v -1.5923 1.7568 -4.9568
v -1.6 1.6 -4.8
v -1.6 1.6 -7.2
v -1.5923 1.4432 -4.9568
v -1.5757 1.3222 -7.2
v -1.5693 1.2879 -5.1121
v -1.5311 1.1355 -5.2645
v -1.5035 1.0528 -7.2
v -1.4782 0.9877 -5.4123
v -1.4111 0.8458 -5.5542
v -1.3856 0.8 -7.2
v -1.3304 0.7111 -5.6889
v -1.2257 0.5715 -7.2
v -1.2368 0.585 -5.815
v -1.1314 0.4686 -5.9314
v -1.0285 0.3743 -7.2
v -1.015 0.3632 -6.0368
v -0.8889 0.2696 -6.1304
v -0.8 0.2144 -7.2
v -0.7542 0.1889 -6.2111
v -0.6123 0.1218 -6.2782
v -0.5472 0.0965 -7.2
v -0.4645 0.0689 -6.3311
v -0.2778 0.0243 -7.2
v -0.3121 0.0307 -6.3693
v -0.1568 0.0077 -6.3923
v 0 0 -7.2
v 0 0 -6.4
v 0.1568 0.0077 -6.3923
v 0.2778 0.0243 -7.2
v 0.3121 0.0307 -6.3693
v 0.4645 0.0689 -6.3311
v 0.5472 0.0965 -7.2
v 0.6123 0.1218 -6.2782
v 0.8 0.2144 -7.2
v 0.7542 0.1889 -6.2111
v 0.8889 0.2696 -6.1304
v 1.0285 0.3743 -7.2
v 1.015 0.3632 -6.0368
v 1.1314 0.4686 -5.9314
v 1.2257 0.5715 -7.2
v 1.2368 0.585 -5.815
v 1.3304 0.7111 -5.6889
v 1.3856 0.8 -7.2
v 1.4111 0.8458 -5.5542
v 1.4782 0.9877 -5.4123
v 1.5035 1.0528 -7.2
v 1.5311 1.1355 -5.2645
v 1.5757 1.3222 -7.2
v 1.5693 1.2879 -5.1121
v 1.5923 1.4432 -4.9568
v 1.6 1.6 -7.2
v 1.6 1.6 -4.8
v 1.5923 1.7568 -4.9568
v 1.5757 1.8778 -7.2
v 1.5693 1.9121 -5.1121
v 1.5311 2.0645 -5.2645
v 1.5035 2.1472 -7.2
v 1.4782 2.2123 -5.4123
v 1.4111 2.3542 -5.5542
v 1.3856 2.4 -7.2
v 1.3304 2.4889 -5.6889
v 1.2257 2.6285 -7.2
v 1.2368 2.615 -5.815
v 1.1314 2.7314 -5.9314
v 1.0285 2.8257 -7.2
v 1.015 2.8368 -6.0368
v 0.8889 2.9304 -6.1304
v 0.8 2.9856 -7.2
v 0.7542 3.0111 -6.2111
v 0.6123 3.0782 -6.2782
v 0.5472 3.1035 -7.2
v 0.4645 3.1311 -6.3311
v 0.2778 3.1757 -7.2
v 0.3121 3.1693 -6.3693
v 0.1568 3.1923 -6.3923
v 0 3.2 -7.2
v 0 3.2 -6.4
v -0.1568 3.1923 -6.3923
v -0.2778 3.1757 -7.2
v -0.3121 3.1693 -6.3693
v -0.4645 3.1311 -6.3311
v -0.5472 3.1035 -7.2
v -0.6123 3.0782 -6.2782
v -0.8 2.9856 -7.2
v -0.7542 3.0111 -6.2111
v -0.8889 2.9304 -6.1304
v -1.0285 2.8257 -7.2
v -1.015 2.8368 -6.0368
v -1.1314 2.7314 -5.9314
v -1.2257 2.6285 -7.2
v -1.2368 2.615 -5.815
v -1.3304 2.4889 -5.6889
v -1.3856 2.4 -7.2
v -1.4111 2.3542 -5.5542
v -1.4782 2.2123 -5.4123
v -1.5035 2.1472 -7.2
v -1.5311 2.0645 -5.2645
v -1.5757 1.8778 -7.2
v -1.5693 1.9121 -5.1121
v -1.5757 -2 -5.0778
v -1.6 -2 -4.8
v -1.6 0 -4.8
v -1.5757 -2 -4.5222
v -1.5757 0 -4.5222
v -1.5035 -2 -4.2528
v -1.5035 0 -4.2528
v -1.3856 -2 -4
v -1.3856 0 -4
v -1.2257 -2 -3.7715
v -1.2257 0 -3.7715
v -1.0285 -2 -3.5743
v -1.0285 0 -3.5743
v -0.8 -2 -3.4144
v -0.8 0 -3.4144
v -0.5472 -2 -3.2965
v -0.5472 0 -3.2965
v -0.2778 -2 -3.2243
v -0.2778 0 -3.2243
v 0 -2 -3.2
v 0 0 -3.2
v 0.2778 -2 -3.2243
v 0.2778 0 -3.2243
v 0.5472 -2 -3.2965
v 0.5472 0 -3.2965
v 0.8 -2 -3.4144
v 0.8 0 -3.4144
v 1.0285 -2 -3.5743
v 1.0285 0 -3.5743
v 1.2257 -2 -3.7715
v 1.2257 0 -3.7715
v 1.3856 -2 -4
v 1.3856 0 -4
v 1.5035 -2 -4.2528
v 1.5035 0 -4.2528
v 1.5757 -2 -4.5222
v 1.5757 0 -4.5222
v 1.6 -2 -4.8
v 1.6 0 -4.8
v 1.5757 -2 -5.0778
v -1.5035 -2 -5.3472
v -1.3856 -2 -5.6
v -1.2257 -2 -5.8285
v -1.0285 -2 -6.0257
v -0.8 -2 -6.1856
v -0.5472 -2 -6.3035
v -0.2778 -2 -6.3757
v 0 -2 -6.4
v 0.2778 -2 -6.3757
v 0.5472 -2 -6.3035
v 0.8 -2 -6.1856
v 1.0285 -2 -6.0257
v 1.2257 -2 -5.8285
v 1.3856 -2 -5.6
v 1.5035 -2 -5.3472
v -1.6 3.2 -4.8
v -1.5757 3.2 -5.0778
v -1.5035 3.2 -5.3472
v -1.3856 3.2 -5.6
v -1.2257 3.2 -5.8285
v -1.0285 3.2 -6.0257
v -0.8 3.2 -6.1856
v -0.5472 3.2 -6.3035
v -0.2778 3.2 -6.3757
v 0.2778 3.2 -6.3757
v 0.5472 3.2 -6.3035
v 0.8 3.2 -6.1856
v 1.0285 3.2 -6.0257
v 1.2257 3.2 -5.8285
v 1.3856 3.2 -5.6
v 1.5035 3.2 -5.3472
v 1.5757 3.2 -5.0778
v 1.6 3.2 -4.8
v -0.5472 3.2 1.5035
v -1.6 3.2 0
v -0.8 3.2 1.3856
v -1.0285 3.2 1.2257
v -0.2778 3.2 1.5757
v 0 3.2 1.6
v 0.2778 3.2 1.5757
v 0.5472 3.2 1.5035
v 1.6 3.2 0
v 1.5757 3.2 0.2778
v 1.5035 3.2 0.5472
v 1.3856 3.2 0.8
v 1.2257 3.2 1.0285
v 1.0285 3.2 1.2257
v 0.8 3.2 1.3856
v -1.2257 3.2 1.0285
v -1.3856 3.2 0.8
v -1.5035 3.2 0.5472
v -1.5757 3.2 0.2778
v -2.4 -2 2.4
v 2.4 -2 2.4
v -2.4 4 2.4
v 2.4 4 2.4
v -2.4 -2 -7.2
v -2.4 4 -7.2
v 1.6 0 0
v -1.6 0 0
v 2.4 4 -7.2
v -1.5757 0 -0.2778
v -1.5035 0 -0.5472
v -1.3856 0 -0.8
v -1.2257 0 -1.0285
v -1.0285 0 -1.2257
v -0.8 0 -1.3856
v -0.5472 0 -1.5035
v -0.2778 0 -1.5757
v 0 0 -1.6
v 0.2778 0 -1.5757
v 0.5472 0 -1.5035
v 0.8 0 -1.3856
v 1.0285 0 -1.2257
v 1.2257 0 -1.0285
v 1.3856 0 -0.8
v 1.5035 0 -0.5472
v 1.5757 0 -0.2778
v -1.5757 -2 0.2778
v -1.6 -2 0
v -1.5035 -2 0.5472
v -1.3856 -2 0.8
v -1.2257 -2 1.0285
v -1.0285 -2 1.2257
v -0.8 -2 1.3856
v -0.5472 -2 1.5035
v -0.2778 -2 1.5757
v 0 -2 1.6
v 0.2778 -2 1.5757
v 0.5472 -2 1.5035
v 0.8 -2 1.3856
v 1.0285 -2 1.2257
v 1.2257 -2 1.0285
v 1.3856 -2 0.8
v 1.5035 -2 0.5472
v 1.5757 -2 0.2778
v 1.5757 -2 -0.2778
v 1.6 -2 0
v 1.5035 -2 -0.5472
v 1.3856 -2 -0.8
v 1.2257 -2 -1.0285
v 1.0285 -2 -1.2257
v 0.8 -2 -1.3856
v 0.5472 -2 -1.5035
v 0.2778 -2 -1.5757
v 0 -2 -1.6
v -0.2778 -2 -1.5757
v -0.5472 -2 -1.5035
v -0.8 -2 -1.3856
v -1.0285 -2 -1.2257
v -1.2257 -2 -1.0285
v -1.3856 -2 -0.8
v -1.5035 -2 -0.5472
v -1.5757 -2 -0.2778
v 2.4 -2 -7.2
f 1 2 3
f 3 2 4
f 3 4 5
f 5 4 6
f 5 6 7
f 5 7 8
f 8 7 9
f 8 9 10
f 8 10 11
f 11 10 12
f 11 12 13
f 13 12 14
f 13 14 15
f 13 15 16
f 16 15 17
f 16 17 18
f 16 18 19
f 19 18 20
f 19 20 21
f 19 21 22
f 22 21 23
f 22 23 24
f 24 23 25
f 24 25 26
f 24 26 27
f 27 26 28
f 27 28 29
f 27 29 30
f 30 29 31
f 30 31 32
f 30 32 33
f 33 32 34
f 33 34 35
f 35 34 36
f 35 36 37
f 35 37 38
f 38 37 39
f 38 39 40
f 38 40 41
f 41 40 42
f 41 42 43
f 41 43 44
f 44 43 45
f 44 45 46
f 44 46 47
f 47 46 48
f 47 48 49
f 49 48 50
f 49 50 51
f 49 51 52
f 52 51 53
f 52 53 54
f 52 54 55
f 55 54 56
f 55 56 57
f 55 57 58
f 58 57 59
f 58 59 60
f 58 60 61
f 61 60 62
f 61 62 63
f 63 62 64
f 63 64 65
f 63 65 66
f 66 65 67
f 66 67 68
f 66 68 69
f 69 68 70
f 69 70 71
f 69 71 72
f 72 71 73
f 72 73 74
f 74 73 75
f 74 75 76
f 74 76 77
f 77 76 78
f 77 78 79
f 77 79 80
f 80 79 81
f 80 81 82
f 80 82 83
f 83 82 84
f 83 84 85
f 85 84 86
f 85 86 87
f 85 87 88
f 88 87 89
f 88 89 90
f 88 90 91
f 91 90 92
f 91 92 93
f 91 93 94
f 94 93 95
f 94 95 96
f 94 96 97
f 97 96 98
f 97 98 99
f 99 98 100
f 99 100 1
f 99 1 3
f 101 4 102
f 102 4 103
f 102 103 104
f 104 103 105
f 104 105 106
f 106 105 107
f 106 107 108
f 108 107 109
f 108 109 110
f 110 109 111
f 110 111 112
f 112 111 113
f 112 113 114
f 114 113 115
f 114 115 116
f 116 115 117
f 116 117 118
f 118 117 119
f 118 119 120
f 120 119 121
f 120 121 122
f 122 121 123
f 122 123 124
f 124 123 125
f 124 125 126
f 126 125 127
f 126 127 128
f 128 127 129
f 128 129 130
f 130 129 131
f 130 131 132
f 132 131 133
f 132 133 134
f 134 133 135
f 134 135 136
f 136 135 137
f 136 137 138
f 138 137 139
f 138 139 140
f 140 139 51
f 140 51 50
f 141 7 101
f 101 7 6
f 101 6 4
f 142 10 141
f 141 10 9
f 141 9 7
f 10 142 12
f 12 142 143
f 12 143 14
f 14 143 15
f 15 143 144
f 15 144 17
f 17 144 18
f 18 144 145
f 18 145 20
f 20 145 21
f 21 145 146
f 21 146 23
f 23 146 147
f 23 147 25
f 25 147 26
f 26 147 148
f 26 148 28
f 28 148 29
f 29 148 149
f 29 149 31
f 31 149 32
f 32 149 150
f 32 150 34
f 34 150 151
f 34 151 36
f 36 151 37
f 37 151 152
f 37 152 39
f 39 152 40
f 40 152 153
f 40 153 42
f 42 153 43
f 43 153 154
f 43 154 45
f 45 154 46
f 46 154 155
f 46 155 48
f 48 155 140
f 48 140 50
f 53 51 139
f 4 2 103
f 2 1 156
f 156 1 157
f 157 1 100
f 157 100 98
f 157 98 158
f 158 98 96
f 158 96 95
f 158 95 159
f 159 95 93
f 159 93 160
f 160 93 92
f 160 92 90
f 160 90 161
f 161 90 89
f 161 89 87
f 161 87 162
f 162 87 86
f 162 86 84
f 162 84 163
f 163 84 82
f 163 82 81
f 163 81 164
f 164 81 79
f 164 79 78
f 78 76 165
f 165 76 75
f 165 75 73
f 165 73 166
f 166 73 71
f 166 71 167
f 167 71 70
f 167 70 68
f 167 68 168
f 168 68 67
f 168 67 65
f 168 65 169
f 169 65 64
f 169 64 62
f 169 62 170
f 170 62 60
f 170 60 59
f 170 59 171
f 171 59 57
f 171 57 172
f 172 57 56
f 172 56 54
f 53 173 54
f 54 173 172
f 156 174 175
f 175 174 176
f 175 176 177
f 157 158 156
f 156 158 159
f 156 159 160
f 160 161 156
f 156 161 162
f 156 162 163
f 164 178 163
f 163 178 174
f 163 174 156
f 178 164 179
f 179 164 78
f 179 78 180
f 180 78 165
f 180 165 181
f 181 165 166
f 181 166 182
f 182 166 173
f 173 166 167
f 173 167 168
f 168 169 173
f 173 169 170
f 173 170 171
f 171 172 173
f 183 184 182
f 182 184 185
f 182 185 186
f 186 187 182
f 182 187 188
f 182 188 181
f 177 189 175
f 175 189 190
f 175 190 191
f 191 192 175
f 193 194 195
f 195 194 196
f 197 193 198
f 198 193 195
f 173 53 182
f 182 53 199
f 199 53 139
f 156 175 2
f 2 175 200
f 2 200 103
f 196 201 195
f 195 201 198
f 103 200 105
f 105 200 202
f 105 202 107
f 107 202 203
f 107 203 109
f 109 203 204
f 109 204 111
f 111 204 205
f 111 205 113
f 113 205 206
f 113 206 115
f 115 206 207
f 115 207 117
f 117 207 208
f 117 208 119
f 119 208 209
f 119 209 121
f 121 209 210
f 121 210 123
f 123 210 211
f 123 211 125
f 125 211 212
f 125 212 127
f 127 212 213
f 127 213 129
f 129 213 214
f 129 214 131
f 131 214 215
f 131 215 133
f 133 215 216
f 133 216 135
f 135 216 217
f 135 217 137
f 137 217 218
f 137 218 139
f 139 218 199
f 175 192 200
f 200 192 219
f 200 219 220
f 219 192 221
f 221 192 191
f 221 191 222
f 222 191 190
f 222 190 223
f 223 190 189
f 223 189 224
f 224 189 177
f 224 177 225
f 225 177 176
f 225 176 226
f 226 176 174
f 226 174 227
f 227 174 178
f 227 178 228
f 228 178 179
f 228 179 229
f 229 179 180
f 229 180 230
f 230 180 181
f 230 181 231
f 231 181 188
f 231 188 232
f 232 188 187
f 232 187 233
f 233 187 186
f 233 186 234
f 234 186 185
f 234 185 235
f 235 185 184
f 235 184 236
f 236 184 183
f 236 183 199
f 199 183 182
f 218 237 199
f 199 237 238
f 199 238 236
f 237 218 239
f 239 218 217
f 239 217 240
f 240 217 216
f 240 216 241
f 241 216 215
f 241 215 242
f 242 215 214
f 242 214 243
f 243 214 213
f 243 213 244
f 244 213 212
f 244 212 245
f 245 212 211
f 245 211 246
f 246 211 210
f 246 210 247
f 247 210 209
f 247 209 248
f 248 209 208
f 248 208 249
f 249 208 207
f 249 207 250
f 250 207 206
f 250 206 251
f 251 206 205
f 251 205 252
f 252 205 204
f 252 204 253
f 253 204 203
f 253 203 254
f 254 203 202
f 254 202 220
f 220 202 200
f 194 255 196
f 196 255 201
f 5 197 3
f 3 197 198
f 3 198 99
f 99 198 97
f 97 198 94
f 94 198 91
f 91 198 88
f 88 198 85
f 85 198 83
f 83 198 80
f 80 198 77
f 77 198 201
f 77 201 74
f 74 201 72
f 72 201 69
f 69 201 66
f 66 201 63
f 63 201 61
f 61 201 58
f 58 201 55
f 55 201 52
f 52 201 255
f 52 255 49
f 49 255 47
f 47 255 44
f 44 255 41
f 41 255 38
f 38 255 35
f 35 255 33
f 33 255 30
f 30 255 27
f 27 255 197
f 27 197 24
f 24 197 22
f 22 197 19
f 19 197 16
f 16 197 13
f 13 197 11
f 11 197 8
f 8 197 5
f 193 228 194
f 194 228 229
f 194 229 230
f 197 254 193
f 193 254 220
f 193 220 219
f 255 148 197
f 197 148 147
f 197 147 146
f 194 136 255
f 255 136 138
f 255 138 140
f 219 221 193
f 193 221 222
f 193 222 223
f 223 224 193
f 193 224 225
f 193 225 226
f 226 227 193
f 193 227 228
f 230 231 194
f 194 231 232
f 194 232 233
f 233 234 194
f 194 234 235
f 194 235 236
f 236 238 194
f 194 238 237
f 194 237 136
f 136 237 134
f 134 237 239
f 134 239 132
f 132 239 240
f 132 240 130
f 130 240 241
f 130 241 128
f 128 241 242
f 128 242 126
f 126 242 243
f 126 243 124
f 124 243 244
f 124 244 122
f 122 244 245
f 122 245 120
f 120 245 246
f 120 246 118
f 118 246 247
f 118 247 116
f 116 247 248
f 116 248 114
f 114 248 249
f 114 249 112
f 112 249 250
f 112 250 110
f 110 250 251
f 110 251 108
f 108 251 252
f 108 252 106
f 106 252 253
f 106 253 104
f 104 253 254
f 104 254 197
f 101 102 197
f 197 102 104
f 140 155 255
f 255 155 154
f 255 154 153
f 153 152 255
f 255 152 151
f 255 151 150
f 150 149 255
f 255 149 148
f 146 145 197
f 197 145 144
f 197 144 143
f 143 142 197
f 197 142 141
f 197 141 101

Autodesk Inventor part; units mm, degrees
ref_plane "YZ Plane" through (0, 0, 0) normal (1, 0, 0) x (0, 1, 0)
ref_plane "XZ Plane" through (0, 0, 0) normal (0, 1, 0) x (-1, 0, 0)
ref_plane "XY Plane" through (0, 0, 0) normal (0, 0, 1) x (1, 0, 0)
sketch "스케치1" plane through (0, 0, 0) normal (0, 1, 0) x (-1, 0, 0)
  circle A0 centre (0, 0) radius 1.6
  circle A1 centre (0, 0) radius 2.4
  circle A2 centre (0, -4.8) radius 2.4
  circle A3 centre (0, -4.8) radius 1.6
  line L0 (1.6, 0) -> (1.6, -4.8)
  line L1 (-1.6, 0) -> (-1.6, -4.8)
  line L2 (-2.4, 2.4) -> (2.4, 2.4)
  line L3 (2.4, 2.4) -> (2.4, -7.2)
  line L4 (2.4, -7.2) -> (-2.4, -7.2)
  line L5 (-2.4, -7.2) -> (-2.4, 2.4)
  point P0 (0, -2.4)
  dimension "d1" = 4.8
  dimension "d2" = 4.8
  dimension "d0" = 3.2
  dimension "d3" = 3.2
extrude "돌출3" add sketch "스케치1" against normal blind 2 contours L0 A1 L1 A0 | A0 L1 A1 L0 | L0 A2 A1 | A1 L3 A2 L0 | L1 A2 L5 A1 | A1 A2 L1 | A2 L0 A3 L1 | A1 L2 L3 | A2 L1 A3 L0 | L5 L2 A1 | L3 L4 A2 | A2 L4 L5
extrude "돌출4" add sketch "스케치1" along normal blind 4 contours A0 L1 A1 L0 | A1 L3 A2 L0 | L1 A2 L5 A1 | A1 L2 L3 | A2 L1 A3 L0 | L5 L2 A1 | L3 L4 A2 | A2 L4 L5 picked at (-1.7127, -1.0681) picked at (-1.7127, -3.7319)
sketch "스케치2" plane through (0, 4, 0) normal (0, 1, 0) x (1, 0, 0)
  line L0 (-2.4, -2.4) -> (2.4, -2.4) projected
  line L1 (2.4, -2.4) -> (2.4, 7.2) projected
  line L2 (2.4, 7.2) -> (-2.4, 7.2) projected
  line L3 (-2.4, 7.2) -> (-2.4, -2.4) projected
  line L4 (-1.6, 0) -> (-1.6, 4.8) projected
  arc A0 (1.6, 4.8) -> (-1.6, 4.8) centre (0, 4.8) ccw projected
  line L5 (1.6, 4.8) -> (1.6, 0) projected
  arc A1 (-1.6, 0) -> (1.6, 0) centre (0, 0) ccw projected
extrude "돌출5" add sketch "스케치2" against normal blind 0.8 contours L3 L2 L1 L0 | L4 A0 L5 A1
sketch "스케치3" plane through (2.4, -2, -7.2) normal (0, 0, -1) x (-1, 0, 0)
  circle A0 centre (2.4, 3.6) radius 1.6
  line L0 (0, 6) -> (4.8, 6) projected
  circle A1 centre (2.4, 3.6) radius 2.4
  line L1 (4.8, 0) -> (4.8, 6) projected
  point P0 (2.4, 2)
  dimension "d14" = 3.2
  dimension "d15" = 2.4
  dimension "d16" = 4.8
extrude "돌출6" cut sketch "스케치3" against normal blind 3.3 contours A0
properties part number "endcap_4mm_2ea_typeB_ver2_onyx"
